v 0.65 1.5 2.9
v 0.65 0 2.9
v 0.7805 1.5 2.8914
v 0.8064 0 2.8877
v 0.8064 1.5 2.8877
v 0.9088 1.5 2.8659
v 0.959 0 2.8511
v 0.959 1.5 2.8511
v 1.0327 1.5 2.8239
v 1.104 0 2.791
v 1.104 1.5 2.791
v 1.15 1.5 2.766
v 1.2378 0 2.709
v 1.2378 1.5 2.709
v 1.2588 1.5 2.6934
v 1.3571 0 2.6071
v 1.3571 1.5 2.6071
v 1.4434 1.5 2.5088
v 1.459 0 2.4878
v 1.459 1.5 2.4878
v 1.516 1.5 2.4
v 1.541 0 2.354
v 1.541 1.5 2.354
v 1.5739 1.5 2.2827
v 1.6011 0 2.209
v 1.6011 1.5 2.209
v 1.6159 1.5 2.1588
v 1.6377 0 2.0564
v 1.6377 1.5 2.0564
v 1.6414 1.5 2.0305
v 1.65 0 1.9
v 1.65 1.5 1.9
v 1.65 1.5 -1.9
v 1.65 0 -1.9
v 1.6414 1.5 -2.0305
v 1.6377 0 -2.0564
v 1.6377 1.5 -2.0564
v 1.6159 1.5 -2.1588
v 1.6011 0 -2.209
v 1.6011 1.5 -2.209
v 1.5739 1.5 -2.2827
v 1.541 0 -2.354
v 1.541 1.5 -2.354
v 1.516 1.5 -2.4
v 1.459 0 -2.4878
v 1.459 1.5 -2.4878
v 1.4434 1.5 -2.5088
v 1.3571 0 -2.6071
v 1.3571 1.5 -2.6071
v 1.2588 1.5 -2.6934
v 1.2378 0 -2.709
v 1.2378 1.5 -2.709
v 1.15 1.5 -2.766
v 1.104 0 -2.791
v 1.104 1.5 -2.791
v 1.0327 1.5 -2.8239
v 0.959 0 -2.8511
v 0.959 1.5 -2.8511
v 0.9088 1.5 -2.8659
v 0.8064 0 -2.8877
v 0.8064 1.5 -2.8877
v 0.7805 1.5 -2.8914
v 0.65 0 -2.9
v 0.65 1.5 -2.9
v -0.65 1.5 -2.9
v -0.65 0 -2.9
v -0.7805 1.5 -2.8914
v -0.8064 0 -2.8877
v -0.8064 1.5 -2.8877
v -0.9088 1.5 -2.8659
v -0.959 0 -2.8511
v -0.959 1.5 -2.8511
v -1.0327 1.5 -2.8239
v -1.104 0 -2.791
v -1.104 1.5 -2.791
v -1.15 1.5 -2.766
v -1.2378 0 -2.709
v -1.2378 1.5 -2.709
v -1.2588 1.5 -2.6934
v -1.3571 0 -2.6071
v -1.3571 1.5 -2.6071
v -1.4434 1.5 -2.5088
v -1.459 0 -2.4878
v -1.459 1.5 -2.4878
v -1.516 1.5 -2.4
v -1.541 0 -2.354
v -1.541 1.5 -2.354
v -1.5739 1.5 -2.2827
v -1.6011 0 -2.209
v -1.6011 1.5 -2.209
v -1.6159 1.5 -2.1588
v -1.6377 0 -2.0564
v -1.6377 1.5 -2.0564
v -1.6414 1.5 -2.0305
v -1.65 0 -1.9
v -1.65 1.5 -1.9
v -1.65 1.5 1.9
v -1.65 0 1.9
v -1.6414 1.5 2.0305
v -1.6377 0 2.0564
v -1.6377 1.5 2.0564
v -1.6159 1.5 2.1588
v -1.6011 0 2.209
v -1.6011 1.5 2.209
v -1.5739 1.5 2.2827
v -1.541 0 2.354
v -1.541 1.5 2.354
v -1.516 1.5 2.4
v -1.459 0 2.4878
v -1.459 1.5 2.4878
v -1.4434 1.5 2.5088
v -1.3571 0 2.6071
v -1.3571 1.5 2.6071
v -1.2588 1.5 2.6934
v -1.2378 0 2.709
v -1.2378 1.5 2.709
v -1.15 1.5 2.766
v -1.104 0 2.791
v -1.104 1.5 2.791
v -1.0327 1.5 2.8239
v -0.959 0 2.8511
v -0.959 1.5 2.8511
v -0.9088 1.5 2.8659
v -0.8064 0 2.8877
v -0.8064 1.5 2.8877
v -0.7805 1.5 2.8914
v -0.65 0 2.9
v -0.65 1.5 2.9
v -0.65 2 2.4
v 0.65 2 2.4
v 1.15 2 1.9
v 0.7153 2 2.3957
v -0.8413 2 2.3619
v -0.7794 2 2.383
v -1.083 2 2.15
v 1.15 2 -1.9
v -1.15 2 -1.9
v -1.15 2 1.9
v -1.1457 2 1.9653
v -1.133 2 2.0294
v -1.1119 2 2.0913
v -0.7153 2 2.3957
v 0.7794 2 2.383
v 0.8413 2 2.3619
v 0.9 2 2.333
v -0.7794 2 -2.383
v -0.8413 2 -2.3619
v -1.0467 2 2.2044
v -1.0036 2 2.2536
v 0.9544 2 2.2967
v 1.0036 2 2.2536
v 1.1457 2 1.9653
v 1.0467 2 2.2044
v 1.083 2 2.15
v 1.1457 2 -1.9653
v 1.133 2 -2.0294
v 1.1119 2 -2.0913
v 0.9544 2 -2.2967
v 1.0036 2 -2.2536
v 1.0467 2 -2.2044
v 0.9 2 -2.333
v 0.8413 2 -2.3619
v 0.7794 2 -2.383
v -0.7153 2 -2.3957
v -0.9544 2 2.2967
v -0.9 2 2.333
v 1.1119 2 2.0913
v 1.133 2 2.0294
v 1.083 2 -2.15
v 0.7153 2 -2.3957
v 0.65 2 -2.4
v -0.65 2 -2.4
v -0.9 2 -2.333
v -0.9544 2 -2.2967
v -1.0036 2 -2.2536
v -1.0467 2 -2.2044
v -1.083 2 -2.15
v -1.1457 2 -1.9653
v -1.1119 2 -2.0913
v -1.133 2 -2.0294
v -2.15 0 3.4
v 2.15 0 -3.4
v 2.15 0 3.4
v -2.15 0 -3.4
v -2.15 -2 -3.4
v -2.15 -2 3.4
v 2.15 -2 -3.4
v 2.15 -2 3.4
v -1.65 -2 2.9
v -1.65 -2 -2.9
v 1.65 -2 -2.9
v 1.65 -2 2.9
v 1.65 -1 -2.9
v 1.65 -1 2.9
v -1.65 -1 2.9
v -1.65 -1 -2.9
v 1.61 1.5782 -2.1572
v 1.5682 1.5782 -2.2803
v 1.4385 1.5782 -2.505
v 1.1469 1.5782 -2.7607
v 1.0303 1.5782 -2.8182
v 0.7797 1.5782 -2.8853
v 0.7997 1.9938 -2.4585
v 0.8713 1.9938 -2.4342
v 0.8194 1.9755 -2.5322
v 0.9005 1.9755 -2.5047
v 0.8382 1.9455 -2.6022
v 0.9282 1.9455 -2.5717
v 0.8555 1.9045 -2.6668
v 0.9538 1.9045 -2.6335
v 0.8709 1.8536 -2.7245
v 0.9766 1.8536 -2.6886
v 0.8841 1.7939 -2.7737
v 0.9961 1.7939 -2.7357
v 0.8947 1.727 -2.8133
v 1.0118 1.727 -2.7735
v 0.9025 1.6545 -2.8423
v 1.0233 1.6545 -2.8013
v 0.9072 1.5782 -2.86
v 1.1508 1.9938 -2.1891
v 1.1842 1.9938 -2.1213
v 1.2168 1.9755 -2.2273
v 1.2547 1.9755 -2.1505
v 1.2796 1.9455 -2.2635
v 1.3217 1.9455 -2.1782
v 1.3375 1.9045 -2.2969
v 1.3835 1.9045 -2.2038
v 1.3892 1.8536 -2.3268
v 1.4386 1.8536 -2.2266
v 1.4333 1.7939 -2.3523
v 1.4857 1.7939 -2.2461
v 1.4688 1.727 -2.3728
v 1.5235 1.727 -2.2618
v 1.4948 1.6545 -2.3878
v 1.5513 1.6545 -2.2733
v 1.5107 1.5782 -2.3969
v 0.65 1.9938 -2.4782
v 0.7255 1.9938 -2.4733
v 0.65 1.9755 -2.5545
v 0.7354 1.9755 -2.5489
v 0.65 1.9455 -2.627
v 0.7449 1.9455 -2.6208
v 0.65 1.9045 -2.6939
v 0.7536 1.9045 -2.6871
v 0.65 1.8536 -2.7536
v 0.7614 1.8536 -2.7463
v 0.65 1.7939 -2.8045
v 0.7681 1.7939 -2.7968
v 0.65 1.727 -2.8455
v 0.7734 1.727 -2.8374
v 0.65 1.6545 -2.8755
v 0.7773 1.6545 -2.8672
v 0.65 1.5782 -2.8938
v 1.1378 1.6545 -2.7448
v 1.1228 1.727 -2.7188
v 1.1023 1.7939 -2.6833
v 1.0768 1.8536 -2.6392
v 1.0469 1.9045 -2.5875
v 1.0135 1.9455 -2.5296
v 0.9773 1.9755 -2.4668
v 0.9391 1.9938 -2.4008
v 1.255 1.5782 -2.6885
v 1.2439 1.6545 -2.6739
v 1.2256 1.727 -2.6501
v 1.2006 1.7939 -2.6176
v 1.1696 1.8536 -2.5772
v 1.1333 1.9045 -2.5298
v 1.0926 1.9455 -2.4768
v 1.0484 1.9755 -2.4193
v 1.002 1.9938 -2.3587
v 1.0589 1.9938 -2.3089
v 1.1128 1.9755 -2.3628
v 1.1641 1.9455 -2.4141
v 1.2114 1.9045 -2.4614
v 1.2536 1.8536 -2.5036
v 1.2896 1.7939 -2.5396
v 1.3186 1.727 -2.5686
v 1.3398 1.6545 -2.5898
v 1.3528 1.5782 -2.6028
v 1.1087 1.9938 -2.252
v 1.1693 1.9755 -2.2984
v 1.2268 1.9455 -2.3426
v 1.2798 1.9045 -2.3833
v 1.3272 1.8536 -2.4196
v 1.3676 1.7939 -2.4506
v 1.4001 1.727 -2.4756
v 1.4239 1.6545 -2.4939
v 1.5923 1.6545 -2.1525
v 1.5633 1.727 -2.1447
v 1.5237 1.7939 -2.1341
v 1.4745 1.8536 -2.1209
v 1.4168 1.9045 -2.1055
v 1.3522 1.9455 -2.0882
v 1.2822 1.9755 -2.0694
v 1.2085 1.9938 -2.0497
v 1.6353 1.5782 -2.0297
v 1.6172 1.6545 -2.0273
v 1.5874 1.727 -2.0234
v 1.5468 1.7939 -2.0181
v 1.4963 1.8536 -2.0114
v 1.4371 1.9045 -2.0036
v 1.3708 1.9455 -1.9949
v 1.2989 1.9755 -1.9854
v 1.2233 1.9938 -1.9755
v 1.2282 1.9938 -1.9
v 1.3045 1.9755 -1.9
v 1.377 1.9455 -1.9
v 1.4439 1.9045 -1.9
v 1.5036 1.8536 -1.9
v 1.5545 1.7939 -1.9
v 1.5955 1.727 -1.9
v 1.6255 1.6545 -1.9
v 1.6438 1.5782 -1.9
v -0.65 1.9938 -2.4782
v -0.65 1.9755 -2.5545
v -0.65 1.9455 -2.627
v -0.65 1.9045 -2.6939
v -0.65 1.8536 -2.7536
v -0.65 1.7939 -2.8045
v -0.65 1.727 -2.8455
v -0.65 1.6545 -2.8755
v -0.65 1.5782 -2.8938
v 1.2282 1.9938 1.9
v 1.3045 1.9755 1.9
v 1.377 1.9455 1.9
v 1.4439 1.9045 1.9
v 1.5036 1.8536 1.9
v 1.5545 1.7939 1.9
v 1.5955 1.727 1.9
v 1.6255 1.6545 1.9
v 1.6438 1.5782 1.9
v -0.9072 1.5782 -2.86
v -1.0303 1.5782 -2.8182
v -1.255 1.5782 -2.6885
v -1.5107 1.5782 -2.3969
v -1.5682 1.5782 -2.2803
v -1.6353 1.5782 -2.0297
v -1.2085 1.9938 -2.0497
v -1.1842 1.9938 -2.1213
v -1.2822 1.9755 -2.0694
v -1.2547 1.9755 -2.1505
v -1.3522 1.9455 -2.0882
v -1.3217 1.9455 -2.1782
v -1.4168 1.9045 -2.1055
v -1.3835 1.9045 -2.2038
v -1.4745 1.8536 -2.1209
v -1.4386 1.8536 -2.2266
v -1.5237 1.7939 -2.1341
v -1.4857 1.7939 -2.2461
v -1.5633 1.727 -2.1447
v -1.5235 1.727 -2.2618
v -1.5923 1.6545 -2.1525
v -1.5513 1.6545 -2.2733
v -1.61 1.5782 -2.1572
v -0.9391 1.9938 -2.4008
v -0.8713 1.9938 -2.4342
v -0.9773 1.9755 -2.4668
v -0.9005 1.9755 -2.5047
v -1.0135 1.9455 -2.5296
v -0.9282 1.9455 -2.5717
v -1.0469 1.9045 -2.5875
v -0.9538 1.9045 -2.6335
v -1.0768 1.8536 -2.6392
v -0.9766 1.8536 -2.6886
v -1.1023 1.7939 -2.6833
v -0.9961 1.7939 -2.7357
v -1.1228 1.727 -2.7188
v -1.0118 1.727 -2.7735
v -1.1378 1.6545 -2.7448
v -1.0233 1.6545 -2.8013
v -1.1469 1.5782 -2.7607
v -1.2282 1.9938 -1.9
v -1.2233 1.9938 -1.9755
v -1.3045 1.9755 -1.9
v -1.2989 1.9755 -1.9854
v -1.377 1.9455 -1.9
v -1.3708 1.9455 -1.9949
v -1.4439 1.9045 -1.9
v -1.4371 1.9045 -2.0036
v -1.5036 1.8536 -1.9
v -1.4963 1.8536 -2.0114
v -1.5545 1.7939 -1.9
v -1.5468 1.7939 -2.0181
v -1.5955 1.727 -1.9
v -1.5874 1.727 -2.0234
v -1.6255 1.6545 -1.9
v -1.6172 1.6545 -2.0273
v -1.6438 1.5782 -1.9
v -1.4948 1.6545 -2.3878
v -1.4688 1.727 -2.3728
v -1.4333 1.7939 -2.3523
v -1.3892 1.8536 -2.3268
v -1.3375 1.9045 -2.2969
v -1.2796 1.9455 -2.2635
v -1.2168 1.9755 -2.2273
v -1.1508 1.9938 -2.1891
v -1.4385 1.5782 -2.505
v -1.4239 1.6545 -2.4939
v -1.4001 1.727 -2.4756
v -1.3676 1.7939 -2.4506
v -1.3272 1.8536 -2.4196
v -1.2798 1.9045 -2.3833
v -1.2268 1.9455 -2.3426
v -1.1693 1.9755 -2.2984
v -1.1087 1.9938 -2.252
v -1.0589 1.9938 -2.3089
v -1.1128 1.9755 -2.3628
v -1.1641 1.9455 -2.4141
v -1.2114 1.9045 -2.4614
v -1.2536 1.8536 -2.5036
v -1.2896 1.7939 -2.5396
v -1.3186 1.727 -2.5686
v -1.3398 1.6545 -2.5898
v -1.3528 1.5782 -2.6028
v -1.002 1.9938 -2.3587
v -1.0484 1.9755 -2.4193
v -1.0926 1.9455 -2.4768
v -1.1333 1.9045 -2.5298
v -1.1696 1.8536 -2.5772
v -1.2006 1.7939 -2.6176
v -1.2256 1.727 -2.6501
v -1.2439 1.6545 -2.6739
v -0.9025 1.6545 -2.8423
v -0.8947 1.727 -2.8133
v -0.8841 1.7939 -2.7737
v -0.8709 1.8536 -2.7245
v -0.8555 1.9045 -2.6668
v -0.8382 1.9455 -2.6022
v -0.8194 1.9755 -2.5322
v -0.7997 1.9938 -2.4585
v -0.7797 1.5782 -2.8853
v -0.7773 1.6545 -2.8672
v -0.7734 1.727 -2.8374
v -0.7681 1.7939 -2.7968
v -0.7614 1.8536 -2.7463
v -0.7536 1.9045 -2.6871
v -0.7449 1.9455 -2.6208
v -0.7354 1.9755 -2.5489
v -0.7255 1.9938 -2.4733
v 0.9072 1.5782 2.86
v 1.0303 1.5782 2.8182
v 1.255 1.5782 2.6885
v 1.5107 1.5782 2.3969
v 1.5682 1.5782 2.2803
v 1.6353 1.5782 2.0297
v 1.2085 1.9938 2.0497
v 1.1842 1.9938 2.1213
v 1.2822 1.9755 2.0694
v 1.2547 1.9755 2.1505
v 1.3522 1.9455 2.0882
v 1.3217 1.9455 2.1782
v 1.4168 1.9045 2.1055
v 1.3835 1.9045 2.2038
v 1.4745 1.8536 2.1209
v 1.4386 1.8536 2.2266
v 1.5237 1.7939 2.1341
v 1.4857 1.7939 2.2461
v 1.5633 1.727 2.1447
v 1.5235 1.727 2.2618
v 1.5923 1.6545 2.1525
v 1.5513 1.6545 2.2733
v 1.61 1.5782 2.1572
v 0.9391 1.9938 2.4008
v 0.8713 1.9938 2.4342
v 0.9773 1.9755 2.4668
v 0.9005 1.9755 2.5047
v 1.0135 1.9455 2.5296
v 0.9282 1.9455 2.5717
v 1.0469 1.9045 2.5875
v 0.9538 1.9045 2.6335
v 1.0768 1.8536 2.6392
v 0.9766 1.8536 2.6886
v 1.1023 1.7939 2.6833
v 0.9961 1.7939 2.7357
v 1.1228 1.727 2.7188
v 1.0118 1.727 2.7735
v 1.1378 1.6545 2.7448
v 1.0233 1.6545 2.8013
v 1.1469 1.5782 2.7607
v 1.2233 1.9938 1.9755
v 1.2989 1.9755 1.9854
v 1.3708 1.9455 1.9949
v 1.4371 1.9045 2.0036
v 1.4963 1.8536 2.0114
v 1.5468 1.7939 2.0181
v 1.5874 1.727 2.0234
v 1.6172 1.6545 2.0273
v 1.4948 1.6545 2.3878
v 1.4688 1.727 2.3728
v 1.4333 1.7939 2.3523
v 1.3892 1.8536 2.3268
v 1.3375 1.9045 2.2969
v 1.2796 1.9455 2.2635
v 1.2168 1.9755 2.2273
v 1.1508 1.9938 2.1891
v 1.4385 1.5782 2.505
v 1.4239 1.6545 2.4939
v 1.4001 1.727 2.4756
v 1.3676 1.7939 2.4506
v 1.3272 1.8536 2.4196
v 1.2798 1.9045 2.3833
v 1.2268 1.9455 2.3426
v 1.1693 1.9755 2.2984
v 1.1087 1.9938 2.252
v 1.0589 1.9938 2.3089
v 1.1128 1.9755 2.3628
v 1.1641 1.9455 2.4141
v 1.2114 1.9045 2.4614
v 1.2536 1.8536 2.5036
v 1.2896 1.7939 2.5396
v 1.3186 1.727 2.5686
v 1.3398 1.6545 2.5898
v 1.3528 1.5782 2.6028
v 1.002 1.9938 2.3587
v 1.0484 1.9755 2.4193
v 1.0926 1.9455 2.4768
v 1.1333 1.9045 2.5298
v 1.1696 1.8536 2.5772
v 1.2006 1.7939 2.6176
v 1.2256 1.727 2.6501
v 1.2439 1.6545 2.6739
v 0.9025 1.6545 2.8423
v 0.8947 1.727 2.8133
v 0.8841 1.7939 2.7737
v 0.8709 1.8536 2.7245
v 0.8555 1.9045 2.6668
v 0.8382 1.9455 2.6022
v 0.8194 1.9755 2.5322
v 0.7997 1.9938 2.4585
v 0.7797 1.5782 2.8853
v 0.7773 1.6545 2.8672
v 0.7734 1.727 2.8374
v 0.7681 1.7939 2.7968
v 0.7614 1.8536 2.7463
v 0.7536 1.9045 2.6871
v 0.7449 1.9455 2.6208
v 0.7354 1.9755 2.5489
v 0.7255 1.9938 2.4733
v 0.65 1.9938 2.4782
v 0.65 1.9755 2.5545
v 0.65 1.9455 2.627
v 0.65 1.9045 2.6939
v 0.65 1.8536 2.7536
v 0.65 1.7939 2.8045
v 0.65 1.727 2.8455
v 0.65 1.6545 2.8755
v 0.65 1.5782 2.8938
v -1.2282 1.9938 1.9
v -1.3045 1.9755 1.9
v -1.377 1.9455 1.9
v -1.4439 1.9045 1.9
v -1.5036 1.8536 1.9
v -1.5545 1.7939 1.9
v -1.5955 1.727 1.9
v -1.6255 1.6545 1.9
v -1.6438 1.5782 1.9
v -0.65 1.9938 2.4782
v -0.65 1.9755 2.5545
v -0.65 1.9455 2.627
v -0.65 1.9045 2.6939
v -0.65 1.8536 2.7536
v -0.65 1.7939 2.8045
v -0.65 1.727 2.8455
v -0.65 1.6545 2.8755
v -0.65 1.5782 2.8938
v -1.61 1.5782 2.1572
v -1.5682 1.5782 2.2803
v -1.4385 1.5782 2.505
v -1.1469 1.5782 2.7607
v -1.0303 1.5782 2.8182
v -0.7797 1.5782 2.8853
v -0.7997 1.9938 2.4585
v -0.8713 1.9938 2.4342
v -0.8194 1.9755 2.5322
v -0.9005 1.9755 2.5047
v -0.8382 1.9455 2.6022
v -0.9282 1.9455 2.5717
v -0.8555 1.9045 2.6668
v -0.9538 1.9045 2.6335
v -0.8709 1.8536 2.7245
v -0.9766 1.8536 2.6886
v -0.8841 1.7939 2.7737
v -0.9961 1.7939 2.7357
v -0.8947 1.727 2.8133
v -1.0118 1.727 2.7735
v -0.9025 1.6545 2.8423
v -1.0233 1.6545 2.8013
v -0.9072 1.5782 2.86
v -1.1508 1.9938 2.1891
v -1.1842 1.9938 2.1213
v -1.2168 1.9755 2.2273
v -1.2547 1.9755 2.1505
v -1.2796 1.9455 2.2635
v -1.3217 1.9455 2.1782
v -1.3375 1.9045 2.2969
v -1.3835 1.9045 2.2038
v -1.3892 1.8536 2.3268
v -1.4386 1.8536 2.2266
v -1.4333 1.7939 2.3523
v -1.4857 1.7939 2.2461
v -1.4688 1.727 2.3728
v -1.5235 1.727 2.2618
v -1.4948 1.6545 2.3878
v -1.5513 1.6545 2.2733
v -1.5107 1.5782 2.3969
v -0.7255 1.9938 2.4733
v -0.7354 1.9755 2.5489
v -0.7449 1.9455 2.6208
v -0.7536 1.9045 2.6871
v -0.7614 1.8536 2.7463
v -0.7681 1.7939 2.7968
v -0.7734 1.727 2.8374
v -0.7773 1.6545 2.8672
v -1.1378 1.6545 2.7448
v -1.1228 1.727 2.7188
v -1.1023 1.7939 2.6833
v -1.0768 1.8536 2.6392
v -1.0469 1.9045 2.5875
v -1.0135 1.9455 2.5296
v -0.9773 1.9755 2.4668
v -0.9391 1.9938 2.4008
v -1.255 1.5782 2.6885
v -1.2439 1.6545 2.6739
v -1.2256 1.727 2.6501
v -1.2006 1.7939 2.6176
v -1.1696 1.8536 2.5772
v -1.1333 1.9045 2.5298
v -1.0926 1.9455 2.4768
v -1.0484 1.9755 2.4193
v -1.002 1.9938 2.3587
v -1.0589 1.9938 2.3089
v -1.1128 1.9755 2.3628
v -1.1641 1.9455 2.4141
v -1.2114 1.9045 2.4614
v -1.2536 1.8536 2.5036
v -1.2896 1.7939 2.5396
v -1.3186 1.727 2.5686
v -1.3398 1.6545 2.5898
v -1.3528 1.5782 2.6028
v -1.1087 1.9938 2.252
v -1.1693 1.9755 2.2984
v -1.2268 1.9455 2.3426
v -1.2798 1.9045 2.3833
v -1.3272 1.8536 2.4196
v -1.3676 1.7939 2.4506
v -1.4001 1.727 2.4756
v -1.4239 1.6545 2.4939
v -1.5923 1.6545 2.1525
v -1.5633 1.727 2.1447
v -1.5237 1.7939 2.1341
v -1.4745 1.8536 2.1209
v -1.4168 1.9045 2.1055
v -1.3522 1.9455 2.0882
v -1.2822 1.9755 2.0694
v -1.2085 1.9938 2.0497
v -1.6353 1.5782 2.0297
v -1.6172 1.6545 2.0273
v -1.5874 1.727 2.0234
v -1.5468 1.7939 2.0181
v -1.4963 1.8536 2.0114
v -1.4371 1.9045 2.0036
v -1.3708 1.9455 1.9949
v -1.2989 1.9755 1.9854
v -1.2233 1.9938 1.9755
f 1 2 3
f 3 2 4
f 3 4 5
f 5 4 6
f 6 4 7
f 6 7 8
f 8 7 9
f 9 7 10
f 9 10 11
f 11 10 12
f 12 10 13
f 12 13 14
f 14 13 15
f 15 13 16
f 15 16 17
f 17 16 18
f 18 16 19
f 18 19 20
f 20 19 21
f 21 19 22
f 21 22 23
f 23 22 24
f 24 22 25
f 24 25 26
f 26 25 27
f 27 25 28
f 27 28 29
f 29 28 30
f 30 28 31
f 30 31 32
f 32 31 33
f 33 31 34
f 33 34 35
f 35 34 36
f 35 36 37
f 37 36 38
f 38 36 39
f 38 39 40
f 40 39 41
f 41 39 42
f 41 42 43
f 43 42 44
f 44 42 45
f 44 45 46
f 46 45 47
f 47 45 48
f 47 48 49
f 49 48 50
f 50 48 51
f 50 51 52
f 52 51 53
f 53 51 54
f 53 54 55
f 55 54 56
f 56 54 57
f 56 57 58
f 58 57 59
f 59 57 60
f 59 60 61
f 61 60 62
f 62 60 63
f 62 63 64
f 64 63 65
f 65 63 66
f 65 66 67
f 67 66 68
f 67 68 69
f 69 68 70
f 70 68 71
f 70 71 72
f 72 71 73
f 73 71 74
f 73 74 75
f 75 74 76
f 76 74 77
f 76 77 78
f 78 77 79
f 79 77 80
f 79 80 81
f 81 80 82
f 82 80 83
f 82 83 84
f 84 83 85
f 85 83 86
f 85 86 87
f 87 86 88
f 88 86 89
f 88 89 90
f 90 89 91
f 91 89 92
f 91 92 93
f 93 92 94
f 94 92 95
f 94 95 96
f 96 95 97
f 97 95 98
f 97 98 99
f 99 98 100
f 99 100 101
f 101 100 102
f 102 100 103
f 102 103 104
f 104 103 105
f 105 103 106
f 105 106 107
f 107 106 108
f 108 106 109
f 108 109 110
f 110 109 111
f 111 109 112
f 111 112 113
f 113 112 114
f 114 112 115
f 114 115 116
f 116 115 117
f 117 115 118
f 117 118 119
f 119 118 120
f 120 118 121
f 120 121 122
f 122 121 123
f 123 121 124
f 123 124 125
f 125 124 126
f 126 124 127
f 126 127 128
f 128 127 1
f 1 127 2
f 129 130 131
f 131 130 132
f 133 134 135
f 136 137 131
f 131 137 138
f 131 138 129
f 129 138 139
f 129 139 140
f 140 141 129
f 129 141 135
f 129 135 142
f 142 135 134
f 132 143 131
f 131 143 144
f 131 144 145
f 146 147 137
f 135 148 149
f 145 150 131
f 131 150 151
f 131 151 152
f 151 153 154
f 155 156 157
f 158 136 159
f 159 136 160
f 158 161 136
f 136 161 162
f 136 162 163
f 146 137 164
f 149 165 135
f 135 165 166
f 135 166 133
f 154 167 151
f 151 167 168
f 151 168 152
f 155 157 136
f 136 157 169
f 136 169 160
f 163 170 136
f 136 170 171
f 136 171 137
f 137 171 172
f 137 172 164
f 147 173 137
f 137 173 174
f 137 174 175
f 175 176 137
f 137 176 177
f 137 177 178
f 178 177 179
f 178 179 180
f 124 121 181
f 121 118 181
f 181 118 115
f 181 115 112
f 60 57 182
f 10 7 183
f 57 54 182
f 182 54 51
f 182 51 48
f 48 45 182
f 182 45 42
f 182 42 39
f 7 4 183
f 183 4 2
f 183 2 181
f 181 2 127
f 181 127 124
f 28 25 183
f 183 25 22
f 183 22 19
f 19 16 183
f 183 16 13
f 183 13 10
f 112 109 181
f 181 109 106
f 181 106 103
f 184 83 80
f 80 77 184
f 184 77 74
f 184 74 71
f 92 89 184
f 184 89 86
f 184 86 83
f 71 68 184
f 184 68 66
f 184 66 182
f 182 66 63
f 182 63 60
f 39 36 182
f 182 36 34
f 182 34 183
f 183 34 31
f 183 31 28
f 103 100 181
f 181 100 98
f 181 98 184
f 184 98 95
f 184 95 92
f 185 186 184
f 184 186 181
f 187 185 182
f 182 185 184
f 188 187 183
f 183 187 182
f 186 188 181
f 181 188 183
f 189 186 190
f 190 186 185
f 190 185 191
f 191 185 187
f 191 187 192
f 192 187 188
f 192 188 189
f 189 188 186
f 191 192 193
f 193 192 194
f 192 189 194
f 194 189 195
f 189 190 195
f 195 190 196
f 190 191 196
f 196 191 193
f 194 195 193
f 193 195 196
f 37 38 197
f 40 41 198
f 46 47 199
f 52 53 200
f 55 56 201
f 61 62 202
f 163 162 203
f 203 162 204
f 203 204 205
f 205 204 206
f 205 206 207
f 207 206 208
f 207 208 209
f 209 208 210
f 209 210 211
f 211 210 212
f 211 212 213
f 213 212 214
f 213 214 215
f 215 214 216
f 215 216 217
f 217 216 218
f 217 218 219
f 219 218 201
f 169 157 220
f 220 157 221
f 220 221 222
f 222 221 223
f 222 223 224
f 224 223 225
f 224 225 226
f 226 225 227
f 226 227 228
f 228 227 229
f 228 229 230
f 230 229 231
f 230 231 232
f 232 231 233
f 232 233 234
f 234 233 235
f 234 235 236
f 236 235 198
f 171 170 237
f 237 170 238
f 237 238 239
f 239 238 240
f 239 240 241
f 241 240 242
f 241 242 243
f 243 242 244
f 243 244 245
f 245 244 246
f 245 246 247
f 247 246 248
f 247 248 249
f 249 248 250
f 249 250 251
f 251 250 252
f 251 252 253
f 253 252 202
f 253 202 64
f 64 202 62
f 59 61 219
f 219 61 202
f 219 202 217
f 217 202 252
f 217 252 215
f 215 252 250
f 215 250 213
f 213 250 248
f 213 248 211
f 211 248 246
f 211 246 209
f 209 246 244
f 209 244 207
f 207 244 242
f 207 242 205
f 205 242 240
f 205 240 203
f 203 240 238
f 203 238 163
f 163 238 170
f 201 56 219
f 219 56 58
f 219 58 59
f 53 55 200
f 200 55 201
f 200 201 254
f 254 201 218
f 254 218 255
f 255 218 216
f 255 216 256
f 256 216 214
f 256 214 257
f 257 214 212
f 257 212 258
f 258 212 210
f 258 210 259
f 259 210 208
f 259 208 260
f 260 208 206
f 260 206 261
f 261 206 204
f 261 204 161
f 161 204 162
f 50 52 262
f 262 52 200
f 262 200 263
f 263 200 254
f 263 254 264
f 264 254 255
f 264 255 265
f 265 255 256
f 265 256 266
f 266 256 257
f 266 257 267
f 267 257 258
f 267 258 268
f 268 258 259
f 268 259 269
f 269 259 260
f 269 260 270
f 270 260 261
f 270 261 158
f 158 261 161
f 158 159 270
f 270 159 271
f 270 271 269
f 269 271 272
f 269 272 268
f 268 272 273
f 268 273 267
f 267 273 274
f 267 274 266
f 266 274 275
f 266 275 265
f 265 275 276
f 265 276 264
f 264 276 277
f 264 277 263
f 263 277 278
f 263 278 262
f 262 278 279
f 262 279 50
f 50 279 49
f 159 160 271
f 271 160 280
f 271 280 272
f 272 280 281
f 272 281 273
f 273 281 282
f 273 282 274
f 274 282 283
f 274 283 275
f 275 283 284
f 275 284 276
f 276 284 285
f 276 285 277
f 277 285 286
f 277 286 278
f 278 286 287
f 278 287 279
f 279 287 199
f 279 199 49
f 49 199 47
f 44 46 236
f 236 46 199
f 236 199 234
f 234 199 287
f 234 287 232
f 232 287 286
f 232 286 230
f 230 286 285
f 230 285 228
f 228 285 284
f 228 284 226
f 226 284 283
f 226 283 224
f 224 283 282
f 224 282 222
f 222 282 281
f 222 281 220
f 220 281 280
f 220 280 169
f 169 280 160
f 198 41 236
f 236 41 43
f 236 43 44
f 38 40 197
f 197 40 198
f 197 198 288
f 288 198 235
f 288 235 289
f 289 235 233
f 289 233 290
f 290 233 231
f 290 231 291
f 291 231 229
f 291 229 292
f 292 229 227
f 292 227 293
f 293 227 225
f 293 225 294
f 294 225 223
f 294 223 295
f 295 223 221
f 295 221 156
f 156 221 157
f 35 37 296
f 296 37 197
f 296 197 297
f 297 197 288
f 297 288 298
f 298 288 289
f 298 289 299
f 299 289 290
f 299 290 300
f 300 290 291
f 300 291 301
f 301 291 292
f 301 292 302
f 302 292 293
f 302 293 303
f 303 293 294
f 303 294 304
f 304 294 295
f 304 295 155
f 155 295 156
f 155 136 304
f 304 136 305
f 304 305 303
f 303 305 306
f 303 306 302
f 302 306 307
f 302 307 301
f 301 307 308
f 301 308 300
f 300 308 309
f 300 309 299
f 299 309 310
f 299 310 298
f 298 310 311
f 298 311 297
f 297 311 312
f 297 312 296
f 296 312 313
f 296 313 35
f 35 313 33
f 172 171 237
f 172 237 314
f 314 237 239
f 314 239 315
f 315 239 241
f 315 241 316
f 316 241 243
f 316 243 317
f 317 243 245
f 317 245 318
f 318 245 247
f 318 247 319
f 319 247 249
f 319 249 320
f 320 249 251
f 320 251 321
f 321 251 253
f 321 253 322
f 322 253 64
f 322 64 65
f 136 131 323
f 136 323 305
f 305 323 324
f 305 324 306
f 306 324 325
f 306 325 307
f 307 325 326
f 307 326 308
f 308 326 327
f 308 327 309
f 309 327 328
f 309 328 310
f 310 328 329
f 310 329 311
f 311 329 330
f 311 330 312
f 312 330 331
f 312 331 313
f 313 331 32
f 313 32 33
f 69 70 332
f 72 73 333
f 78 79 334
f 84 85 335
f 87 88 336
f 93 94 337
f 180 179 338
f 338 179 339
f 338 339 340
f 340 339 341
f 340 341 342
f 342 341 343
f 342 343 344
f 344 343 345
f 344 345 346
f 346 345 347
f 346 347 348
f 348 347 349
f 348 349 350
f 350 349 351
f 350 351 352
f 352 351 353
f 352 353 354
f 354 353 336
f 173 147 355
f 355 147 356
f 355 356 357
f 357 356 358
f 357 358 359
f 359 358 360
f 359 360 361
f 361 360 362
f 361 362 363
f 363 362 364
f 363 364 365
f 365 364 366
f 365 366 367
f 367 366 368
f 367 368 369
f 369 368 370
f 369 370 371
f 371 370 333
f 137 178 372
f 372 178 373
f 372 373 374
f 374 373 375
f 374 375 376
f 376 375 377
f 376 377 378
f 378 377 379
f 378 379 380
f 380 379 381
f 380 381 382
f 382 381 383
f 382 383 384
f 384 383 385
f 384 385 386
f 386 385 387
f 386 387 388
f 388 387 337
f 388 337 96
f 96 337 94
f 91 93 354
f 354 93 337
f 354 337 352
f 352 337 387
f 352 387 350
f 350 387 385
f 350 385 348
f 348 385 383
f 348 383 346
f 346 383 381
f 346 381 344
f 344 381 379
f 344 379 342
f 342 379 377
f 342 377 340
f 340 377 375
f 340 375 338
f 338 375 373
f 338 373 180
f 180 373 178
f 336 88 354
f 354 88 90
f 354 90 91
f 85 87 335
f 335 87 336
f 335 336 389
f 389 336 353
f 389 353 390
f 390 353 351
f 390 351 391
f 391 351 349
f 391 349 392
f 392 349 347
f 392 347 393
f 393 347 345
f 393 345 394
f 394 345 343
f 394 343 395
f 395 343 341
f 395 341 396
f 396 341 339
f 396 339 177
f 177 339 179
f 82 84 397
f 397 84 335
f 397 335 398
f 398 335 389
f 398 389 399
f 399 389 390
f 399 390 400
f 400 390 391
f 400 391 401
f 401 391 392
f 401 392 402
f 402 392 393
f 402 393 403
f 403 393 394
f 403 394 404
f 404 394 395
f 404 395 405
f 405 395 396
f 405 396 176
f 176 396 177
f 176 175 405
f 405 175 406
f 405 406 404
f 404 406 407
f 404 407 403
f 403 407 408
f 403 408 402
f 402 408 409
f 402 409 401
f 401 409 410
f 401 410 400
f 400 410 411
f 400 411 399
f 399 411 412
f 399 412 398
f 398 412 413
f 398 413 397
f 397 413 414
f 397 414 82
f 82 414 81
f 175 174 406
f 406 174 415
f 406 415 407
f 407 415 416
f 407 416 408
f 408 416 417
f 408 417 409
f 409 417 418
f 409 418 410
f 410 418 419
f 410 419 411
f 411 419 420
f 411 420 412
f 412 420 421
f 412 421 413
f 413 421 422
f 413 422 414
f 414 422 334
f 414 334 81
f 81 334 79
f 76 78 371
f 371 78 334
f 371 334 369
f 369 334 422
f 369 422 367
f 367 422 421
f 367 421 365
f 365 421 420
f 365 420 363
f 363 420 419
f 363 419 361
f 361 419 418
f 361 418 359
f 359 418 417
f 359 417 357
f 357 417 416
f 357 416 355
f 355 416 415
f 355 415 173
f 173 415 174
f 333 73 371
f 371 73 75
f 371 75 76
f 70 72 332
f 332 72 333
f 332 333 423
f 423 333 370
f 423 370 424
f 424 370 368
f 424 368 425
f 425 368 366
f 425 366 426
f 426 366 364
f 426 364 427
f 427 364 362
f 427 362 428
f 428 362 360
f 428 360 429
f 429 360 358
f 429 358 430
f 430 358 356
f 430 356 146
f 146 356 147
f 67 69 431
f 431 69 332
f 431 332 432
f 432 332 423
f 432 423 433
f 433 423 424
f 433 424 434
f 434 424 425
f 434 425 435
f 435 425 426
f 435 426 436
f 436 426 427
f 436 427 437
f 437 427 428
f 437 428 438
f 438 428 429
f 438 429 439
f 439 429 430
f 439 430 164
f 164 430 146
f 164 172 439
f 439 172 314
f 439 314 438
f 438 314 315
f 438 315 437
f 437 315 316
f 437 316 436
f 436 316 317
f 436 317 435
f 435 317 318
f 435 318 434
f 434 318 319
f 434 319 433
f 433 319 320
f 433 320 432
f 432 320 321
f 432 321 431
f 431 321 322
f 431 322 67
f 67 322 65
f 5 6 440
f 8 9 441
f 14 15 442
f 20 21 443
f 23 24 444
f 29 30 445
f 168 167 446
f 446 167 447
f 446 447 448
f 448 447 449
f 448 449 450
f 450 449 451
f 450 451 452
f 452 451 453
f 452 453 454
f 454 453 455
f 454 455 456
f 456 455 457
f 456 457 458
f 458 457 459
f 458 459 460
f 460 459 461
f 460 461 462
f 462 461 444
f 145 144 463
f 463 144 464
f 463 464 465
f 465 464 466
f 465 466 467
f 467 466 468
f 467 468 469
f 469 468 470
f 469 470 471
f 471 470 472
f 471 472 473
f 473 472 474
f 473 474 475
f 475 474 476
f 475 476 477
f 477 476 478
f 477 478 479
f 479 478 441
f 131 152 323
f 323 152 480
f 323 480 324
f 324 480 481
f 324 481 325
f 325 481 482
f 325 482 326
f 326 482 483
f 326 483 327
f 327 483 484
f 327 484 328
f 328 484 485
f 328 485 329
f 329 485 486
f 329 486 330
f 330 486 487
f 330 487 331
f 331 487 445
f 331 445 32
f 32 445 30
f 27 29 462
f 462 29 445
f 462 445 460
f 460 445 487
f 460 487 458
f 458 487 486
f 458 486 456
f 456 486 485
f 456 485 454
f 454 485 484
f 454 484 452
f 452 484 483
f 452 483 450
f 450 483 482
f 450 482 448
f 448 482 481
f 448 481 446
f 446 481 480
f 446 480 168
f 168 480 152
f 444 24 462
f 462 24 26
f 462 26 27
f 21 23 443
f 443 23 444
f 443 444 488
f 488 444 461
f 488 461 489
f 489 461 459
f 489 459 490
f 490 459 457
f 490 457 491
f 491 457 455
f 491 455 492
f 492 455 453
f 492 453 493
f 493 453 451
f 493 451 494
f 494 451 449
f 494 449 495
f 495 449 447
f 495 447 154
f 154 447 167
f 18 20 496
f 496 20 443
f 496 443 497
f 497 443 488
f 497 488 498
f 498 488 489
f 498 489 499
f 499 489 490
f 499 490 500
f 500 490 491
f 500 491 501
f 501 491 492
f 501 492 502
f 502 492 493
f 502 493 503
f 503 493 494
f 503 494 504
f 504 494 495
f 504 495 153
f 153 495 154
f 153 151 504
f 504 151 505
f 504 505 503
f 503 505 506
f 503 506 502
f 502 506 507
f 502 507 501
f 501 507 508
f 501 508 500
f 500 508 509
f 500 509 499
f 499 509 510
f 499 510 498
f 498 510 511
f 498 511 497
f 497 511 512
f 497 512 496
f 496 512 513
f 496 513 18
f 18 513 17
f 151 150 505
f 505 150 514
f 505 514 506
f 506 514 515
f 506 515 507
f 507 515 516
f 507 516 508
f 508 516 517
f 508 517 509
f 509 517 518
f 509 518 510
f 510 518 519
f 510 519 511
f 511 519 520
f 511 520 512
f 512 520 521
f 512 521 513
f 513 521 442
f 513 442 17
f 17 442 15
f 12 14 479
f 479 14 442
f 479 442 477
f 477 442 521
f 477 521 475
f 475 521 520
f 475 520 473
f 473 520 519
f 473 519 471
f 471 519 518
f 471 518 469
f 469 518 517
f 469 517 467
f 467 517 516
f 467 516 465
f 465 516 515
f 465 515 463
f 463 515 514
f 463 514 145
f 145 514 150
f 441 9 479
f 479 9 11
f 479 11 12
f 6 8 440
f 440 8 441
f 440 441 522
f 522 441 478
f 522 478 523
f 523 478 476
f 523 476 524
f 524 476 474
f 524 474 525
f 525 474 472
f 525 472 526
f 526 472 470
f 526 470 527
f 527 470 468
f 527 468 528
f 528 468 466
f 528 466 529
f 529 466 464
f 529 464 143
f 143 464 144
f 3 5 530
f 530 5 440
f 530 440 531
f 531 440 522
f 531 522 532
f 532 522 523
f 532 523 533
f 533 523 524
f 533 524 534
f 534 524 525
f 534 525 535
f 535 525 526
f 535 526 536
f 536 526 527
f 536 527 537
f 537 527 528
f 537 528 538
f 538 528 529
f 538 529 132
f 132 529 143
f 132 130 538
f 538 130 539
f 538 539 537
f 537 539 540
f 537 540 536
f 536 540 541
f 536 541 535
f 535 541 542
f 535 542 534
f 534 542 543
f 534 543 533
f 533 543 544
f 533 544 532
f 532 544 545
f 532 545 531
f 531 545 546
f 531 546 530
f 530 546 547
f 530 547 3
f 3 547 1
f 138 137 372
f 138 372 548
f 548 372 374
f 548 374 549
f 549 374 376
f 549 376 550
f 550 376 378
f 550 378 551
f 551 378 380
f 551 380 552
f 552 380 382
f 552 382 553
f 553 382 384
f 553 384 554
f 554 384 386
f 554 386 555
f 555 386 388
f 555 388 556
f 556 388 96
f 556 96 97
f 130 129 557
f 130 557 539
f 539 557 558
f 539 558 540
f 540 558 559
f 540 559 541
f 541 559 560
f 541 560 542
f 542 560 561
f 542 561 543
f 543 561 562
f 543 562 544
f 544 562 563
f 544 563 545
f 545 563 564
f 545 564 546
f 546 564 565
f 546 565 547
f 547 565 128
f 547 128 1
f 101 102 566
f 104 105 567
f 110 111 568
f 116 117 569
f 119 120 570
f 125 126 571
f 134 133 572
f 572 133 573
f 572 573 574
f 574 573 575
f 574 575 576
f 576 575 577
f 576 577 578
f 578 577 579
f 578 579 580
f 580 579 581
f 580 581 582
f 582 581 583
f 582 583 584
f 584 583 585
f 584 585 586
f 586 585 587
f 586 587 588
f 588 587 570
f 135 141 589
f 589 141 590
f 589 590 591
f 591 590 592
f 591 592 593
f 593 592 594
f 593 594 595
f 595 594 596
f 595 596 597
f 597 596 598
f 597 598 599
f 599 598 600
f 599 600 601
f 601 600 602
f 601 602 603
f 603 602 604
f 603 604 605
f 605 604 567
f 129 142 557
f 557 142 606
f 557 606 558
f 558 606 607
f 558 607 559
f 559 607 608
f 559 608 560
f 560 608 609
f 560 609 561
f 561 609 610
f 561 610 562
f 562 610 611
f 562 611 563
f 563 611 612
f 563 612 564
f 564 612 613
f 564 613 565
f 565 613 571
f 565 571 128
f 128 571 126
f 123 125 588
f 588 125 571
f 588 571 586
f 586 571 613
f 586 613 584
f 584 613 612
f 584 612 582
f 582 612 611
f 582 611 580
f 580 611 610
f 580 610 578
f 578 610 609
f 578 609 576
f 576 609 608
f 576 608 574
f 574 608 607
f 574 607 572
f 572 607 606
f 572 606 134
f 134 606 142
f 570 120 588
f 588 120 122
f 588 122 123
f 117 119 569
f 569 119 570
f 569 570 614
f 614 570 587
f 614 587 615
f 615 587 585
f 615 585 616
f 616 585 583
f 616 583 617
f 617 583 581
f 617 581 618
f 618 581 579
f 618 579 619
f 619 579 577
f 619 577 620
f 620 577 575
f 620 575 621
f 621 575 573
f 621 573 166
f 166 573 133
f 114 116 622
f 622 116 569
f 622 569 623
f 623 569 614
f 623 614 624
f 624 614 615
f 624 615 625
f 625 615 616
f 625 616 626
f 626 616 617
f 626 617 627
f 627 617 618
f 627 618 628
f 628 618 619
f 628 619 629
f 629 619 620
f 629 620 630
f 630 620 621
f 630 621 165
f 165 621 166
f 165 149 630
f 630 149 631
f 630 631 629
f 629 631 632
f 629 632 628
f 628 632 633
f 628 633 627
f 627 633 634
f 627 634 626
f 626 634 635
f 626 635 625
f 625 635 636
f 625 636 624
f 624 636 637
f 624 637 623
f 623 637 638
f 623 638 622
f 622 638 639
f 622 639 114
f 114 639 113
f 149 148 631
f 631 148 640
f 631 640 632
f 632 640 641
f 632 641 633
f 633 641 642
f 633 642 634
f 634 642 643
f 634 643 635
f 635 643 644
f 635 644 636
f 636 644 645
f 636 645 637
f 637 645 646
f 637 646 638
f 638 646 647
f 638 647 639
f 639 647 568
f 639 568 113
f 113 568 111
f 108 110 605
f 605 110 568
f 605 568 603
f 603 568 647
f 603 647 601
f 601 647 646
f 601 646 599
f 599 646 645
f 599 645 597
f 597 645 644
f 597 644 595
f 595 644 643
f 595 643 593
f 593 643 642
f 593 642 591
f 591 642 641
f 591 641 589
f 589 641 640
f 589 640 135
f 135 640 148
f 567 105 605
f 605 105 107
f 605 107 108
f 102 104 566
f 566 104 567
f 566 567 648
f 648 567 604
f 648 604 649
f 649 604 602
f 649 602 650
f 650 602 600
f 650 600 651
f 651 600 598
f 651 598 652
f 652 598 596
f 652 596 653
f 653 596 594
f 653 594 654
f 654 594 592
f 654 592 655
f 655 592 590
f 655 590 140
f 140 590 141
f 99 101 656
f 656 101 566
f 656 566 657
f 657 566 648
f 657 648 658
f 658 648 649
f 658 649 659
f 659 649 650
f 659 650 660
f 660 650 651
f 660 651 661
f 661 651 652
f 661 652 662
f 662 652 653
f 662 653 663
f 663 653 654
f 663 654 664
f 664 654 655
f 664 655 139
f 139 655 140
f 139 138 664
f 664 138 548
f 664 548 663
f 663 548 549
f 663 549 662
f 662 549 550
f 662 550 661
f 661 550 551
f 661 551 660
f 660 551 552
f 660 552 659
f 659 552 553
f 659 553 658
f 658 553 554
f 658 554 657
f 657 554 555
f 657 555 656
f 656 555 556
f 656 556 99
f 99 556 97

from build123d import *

# Parameters (mm, degrees)
EXTRUDE_1_DEPTH = 2
SKETCH_2_W      = 4.3
SKETCH_2_H      = 6.8
EXTRUDE_2_DEPTH = 1
SKETCH_4_W      = 4.3
SKETCH_4_H      = 6.8
SKETCH_4_W_2    = 3.3
SKETCH_4_H_2    = 5.8
EXTRUDE_3_DEPTH = 1
FILLET_1_R      = 0.5


with BuildPart() as part:
    # 草图1 → 凸台-拉伸1 (new body)
    with BuildSketch(Plane(origin=(0, 0, 0), x_dir=(1, 0, 0), z_dir=(0, 1, 0))):
        with BuildLine():
            Line((-0.65, -2.9), (0.65, -2.9))
            ThreePointArc((0.65, -2.9), (1.357106781, -2.607106781), (1.65, -1.9))
            Line((1.65, -1.9), (1.65, 1.9))
            ThreePointArc((1.65, 1.9), (1.357106781, 2.607106781), (0.65, 2.9))
            Line((0.65, 2.9), (-0.65, 2.9))
            ThreePointArc((-0.65, 2.9), (-1.357106781, 2.607106781), (-1.65, 1.9))
            Line((-1.65, 1.9), (-1.65, -1.9))
            ThreePointArc((-1.65, -1.9), (-1.357106781, -2.607106781), (-0.65, -2.9))
        make_face()
    extrude(amount=EXTRUDE_1_DEPTH)

    # 草图2 → 凸台-拉伸2 (add)
    with BuildSketch(Plane.XZ):
        Rectangle(SKETCH_2_W, SKETCH_2_H)
    extrude(amount=EXTRUDE_2_DEPTH)

    # 草图4 → 凸台-拉伸3 (add)
    with BuildSketch(Plane.XZ.offset(1)):
        Rectangle(SKETCH_4_W, SKETCH_4_H)
        Rectangle(SKETCH_4_W_2, SKETCH_4_H_2, mode=Mode.SUBTRACT)
    extrude(amount=EXTRUDE_3_DEPTH)

    # 圆角1
    fillet_1_edges = [part.edges().sort_by_distance(p)[0] for p in [
        (1.357106781, 2, -2.607106781),
        (0, 2, -2.9),
        (-1.357106781, 2, -2.607106781),
        (-1.65, 2, 0),
        (-1.357106781, 2, 2.607106781),
        (0, 2, 2.9),
        (1.357106781, 2, 2.607106781),
        (1.65, 2, 0),
    ]]
    fillet(fillet_1_edges, radius=FILLET_1_R)


solid = part.part
